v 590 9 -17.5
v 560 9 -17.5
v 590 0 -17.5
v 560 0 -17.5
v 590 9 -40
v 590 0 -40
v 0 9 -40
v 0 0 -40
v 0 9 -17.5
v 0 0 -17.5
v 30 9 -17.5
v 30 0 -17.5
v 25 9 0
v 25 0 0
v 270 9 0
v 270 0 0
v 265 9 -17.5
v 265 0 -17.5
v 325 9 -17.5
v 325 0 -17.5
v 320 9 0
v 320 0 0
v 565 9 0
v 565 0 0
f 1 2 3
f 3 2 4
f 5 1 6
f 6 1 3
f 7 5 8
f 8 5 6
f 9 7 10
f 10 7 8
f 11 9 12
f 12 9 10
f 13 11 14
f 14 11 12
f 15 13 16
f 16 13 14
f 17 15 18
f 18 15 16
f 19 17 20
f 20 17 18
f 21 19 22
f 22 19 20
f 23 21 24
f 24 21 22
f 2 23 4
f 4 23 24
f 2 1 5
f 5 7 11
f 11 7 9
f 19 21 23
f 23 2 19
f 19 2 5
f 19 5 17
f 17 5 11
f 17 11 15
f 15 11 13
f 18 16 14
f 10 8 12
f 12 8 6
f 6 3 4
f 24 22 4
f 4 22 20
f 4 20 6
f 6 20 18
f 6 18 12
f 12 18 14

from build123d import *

# Parameters (mm, degrees)
SKETCH1_W           = 590
SKETCH1_H           = 5
BOSS_EXTRUDE1_DEPTH = 9


with BuildPart() as part:
    # Sketch1 → Boss-Extrude1 (new body)
    with BuildSketch(Plane(origin=(0, 0, 0), x_dir=(1, 0, 0), z_dir=(0, 1, 0))):
        Polygon((0, 35), (0, 17.5), (30, 17.5), (25, 0), (270, 0), (265, 17.5), (295, 17.5), (295, 35), align=None)
        Polygon((590, 35), (295, 35), (295, 17.5), (325, 17.5), (320, 0), (565, 0), (560, 17.5), (590, 17.5), align=None)
        with Locations((295, 37.5)):
            Rectangle(SKETCH1_W, SKETCH1_H)
    extrude(amount=BOSS_EXTRUDE1_DEPTH)


solid = part.part
